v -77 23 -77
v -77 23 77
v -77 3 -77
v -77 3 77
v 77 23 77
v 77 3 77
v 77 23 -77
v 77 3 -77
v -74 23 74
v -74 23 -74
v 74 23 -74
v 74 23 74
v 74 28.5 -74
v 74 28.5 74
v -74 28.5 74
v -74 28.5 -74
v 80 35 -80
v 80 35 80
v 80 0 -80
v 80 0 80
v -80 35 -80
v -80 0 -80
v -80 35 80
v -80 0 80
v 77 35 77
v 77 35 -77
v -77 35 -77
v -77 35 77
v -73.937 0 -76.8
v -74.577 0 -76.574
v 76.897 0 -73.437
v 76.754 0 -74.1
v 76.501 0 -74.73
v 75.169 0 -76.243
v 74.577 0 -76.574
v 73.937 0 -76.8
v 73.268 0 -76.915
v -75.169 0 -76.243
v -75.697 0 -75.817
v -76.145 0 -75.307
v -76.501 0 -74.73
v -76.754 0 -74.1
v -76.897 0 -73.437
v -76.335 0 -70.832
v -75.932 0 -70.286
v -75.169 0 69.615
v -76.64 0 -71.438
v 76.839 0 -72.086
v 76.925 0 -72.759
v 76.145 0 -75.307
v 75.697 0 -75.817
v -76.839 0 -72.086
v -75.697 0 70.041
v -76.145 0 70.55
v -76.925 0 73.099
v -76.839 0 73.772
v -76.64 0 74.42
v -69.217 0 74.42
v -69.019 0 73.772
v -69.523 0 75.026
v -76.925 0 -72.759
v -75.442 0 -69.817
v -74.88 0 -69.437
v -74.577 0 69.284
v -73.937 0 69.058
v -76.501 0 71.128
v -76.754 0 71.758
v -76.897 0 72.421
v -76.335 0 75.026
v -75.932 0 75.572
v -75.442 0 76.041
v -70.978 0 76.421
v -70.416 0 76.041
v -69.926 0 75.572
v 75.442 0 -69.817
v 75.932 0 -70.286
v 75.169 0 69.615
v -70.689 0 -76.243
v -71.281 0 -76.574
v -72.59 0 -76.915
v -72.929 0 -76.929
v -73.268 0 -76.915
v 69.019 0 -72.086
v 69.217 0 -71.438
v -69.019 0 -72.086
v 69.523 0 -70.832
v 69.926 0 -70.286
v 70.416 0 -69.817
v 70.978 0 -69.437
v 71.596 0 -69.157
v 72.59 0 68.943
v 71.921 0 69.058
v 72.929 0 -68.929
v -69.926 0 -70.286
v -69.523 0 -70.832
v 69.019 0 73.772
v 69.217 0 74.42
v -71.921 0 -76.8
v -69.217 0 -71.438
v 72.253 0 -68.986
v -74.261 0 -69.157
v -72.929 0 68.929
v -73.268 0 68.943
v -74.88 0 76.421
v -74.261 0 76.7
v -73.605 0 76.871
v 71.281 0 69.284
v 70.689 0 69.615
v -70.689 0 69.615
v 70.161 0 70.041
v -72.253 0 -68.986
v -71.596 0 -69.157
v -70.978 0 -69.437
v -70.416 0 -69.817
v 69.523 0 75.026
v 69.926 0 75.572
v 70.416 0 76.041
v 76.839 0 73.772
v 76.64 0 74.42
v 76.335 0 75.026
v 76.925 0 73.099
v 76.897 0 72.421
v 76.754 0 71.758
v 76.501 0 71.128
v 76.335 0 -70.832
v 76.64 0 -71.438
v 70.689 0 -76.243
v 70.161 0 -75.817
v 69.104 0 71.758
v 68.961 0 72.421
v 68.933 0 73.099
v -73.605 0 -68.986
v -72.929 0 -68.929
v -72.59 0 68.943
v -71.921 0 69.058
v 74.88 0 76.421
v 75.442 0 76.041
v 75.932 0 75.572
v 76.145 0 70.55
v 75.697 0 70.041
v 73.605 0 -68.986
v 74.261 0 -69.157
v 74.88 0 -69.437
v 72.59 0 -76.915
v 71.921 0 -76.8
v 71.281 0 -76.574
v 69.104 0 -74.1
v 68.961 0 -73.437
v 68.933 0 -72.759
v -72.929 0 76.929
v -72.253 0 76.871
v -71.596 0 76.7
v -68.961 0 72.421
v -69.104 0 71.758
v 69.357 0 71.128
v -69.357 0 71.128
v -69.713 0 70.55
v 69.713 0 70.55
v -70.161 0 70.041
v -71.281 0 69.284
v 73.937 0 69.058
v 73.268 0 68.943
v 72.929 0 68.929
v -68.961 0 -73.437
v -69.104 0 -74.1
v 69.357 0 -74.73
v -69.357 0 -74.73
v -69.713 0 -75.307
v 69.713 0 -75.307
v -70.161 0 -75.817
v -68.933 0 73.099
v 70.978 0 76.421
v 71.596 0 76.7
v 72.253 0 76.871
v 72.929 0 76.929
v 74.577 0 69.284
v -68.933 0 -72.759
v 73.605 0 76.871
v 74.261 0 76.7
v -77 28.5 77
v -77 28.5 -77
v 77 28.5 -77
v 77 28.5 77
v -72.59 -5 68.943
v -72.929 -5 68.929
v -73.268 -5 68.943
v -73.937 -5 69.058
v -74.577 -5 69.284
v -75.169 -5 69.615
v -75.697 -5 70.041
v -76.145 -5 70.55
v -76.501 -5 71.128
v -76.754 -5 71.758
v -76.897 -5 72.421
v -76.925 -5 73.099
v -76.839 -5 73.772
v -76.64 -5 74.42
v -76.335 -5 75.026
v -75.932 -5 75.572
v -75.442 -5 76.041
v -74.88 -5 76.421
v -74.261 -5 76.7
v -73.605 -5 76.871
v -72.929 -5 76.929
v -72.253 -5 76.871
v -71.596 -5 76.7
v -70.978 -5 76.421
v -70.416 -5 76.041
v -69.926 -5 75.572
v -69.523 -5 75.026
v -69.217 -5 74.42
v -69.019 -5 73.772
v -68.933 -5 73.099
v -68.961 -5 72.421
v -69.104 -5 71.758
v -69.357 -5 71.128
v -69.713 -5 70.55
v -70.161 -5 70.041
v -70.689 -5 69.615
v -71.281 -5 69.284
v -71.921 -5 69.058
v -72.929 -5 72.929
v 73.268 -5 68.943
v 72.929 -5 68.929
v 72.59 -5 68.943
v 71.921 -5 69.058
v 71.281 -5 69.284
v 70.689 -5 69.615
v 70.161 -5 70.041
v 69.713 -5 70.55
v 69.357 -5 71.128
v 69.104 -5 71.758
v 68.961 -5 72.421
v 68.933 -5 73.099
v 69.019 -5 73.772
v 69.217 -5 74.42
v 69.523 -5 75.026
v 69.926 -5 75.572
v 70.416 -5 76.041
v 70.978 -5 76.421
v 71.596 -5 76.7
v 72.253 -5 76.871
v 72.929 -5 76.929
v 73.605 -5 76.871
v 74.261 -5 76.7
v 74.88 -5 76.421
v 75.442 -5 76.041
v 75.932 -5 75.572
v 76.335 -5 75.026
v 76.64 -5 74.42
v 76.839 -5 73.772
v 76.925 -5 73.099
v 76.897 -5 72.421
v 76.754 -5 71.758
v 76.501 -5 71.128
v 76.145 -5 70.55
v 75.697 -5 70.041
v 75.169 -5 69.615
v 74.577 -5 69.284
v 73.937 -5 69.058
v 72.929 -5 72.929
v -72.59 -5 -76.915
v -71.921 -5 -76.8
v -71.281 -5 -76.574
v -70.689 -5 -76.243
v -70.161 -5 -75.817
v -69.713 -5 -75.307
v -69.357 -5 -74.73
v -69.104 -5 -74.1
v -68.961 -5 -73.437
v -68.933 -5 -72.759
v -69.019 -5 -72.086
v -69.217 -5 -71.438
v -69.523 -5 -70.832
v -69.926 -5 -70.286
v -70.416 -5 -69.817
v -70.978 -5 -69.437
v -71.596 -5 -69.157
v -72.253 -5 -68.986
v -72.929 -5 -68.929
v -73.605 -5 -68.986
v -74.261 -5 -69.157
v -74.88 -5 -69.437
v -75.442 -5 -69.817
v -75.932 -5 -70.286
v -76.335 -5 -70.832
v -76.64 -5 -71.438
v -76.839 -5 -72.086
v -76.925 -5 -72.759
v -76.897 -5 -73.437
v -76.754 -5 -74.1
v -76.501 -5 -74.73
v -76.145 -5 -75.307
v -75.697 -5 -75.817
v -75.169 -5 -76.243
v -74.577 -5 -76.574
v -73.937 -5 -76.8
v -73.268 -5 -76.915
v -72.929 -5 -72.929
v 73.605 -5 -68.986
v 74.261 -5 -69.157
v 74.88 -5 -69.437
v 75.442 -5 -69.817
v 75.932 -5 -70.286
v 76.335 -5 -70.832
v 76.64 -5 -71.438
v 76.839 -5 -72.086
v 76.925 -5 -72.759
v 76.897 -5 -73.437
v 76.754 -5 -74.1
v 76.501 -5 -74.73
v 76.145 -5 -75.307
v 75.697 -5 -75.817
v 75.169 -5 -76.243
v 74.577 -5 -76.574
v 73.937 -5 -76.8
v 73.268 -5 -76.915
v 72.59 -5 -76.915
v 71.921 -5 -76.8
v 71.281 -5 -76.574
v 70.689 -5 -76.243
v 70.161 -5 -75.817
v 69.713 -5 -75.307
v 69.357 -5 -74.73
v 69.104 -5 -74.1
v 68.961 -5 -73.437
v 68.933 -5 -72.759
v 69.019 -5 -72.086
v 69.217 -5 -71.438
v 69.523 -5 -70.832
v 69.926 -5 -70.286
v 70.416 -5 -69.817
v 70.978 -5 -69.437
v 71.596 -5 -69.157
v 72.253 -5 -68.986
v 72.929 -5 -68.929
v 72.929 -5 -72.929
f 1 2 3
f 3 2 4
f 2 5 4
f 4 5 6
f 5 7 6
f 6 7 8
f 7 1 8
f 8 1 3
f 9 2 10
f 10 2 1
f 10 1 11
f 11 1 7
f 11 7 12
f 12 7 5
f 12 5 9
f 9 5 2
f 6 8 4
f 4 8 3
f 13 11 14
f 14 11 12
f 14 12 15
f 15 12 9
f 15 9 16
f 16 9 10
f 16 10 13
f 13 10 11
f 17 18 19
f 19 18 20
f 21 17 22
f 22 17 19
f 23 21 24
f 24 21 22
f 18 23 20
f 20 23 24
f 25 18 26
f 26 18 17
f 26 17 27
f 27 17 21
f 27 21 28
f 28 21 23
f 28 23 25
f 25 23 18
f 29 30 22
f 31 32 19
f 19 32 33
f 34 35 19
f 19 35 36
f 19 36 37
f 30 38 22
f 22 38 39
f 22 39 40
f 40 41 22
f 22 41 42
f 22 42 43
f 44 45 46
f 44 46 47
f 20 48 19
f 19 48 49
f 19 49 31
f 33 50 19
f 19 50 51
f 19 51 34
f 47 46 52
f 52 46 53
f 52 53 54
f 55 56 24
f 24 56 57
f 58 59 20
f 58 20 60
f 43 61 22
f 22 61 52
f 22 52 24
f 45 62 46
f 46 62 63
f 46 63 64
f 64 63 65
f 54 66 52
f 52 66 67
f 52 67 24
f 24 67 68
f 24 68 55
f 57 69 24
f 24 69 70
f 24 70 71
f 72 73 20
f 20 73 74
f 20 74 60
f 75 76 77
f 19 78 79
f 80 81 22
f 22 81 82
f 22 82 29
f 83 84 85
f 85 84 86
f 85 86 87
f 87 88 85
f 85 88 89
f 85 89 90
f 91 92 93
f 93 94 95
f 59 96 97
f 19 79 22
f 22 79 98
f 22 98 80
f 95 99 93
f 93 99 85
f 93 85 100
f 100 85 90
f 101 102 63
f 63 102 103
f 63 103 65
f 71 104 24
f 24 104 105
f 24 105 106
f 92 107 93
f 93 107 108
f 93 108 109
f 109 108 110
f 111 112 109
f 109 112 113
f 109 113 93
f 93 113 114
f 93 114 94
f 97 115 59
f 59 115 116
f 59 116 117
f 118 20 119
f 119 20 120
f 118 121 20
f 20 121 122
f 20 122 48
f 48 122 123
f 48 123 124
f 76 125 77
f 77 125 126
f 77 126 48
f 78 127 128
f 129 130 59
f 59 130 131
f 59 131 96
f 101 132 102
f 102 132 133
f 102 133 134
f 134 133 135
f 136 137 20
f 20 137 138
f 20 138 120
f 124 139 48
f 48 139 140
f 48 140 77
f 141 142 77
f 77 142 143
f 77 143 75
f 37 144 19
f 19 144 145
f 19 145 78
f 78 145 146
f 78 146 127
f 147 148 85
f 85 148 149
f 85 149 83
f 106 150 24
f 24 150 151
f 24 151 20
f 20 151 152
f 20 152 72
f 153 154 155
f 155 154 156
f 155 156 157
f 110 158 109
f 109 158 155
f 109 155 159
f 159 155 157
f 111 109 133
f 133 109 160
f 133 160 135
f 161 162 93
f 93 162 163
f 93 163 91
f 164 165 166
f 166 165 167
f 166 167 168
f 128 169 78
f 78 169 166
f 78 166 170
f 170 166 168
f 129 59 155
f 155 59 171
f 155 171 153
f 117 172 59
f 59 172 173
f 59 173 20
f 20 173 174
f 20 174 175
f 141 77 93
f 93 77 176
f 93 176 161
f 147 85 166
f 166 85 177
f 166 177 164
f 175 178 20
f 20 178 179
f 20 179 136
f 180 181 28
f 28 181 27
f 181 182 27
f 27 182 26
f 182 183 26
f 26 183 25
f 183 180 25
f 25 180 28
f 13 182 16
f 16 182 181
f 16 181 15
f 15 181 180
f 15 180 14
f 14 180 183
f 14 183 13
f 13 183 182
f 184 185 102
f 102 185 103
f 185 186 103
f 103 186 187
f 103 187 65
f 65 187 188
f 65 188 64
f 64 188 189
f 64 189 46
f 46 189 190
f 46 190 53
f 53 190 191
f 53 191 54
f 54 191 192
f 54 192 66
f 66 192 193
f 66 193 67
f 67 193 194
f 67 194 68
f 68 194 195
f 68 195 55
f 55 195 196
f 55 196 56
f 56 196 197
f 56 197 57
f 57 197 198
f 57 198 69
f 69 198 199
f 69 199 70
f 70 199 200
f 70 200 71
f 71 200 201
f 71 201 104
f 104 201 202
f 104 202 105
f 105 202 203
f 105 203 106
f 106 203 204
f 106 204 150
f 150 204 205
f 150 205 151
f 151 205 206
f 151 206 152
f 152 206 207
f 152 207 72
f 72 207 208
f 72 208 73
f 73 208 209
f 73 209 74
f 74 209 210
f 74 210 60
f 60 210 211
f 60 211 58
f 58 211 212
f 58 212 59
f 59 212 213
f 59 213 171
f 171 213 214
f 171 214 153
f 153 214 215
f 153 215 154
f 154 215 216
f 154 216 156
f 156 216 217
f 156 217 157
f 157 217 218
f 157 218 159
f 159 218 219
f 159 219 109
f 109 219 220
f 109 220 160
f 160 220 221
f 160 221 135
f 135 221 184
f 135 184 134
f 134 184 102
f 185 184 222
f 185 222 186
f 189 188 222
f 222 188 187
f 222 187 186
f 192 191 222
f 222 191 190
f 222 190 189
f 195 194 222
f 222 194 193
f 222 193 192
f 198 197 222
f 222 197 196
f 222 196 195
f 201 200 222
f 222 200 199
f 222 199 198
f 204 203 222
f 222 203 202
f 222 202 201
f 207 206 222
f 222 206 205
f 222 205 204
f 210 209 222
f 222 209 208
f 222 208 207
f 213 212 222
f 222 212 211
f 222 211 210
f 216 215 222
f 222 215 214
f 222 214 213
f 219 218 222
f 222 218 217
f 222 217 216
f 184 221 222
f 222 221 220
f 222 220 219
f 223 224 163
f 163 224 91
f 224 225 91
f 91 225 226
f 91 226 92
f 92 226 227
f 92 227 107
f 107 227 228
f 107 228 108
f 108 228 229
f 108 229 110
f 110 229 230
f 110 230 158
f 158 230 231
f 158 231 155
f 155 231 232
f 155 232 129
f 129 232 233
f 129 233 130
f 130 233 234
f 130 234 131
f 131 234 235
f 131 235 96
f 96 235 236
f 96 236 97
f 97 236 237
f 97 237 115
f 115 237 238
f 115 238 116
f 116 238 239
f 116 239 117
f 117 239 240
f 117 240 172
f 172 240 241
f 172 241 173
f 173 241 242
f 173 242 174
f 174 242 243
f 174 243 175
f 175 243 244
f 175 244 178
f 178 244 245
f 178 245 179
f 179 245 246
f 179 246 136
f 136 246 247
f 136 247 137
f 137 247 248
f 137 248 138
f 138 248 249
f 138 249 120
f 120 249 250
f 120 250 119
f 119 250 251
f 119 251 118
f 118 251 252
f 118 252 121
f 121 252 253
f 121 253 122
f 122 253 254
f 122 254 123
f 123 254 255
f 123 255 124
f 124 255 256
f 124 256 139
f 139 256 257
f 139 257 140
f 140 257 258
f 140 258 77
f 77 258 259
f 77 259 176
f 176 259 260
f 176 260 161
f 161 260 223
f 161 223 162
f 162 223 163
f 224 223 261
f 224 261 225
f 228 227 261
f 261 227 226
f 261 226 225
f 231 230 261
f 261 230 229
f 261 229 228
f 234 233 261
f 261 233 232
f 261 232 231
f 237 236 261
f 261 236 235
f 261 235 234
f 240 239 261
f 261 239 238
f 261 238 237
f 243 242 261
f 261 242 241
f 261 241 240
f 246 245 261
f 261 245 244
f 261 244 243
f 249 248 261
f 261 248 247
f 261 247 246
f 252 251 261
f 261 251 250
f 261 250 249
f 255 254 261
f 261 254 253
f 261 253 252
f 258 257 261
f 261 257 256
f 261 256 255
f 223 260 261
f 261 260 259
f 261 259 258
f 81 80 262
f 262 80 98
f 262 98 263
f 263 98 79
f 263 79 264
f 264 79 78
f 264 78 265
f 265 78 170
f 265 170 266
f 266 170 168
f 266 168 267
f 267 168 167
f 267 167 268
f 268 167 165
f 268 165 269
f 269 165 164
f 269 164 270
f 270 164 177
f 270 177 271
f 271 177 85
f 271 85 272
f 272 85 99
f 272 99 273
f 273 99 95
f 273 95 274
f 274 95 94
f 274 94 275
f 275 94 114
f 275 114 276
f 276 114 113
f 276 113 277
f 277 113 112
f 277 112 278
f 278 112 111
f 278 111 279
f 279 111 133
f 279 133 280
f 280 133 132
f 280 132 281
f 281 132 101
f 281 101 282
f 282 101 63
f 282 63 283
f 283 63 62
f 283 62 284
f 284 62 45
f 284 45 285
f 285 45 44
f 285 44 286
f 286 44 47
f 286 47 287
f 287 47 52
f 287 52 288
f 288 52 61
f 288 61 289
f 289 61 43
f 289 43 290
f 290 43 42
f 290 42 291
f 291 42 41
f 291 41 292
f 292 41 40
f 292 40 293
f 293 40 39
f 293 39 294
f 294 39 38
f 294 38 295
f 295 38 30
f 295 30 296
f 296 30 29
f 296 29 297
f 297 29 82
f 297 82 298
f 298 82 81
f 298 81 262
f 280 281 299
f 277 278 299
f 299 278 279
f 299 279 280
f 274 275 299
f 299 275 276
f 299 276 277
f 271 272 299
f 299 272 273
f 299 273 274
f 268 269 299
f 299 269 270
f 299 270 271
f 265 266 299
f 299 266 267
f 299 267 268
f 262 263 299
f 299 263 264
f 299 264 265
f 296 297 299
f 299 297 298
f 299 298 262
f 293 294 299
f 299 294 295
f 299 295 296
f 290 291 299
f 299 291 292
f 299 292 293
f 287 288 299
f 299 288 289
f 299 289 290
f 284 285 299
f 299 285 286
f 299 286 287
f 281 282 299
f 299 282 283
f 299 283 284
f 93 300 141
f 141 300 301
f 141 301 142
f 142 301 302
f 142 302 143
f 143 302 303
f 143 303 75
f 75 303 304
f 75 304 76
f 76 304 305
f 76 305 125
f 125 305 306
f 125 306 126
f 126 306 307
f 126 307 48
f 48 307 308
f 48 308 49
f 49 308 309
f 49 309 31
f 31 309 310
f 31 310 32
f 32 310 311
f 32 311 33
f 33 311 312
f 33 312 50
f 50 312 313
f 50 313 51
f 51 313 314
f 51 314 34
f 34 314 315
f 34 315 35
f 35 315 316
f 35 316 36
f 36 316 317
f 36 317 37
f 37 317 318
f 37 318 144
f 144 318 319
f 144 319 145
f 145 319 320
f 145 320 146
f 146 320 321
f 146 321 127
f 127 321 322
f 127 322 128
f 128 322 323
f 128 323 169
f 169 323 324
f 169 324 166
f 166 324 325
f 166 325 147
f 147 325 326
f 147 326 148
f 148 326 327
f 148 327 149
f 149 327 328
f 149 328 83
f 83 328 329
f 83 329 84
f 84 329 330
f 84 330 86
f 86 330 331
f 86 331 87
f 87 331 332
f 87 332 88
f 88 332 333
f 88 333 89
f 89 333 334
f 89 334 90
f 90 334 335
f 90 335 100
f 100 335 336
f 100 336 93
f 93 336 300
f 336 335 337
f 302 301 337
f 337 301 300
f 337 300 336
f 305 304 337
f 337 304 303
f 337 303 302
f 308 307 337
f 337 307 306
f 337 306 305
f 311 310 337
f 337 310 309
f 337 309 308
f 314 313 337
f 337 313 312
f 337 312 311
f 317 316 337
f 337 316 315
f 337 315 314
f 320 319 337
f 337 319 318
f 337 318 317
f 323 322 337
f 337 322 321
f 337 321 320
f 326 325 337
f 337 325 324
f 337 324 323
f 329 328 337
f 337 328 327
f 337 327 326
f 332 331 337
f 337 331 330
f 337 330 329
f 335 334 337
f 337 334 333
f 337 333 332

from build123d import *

# Parameters (mm, degrees)
SKETCH2_W                                  = 160
SKETCH2_H                                  = 160
OUTER_BLOCK_DEPTH                          = 35
SKETCH12_W                                 = 154
SKETCH12_H                                 = 154
CUT_EXTRUDE1_DEPTH                         = 6.5
SKETCH14_W                                 = 154
SKETCH14_H                                 = 154
CUT_EXTRUDE4_DEPTH                         = 20
SKETCH15_W                                 = 148
SKETCH15_H                                 = 148
CUT_EXTRUDE6_DEPTH                         = 7.5
SKETCH17_R                                 = 4
BOSS_EXTRUDE1_DEPTH                        = 5
MIRROR1_AT_THE_SECOND_PLANE_COPY_1_SKETC_R = 4
MIRROR1_AT_THE_SECOND_PLANE_COPY_1_DEPTH   = 5


with BuildPart() as part:
    # Sketch2 → Outer Block (new body)
    with BuildSketch(Plane(origin=(0, 0, 0), x_dir=(1, 0, 0), z_dir=(0, 1, 0))):
        Rectangle(SKETCH2_W, SKETCH2_H)
    extrude(amount=OUTER_BLOCK_DEPTH)

    # Sketch12 → Cut-Extrude1 (cut)
    with BuildSketch(Plane(origin=(0, 35, 0), x_dir=(1, 0, 0), z_dir=(0, 1, 0))):
        Rectangle(SKETCH12_W, SKETCH12_H)
    extrude(amount=-CUT_EXTRUDE1_DEPTH, mode=Mode.SUBTRACT)

    # Sketch14 → Cut-Extrude4 (cut)
    with BuildSketch(Plane(origin=(0, 3, 0), x_dir=(-1, 0, 0), z_dir=(0, -1, 0))):
        Rectangle(SKETCH14_W, SKETCH14_H)
    extrude(amount=-CUT_EXTRUDE4_DEPTH, mode=Mode.SUBTRACT)

    # Sketch15 → Cut-Extrude6 (cut)
    with BuildSketch(Plane(origin=(0, 28.5, 0), x_dir=(1, 0, 0), z_dir=(0, 1, 0))):
        Rectangle(SKETCH15_W, SKETCH15_H)
    extrude(amount=-CUT_EXTRUDE6_DEPTH, mode=Mode.SUBTRACT)

    # Sketch17 → Boss-Extrude1 (add)
    with BuildSketch(Plane.XZ):
        with Locations((-72.928932188, 72.928932188)):
            Circle(SKETCH17_R)
    boss_extrude1 = extrude(amount=BOSS_EXTRUDE1_DEPTH)

    # Mirror1: Boss-Extrude1 across plane
    add(boss_extrude1.mirror(Plane.XY))

    # Mirror1 at the second plane: Boss-Extrude1 across plane
    add(boss_extrude1.mirror(Plane(origin=(0, 0, 0), x_dir=(0, 0, 1), z_dir=(1, 0, 0))))

    # Mirror1 at the second plane copy 1 sketc → Mirror1 at the second plane copy 1 (add)
    with BuildSketch(Plane(origin=(0, 0, 0), x_dir=(-1, 0, 0), z_dir=(0, -1, 0))):
        with Locations((-72.928932188, 72.928932188)):
            Circle(MIRROR1_AT_THE_SECOND_PLANE_COPY_1_SKETC_R)
    extrude(amount=MIRROR1_AT_THE_SECOND_PLANE_COPY_1_DEPTH)


solid = part.part
